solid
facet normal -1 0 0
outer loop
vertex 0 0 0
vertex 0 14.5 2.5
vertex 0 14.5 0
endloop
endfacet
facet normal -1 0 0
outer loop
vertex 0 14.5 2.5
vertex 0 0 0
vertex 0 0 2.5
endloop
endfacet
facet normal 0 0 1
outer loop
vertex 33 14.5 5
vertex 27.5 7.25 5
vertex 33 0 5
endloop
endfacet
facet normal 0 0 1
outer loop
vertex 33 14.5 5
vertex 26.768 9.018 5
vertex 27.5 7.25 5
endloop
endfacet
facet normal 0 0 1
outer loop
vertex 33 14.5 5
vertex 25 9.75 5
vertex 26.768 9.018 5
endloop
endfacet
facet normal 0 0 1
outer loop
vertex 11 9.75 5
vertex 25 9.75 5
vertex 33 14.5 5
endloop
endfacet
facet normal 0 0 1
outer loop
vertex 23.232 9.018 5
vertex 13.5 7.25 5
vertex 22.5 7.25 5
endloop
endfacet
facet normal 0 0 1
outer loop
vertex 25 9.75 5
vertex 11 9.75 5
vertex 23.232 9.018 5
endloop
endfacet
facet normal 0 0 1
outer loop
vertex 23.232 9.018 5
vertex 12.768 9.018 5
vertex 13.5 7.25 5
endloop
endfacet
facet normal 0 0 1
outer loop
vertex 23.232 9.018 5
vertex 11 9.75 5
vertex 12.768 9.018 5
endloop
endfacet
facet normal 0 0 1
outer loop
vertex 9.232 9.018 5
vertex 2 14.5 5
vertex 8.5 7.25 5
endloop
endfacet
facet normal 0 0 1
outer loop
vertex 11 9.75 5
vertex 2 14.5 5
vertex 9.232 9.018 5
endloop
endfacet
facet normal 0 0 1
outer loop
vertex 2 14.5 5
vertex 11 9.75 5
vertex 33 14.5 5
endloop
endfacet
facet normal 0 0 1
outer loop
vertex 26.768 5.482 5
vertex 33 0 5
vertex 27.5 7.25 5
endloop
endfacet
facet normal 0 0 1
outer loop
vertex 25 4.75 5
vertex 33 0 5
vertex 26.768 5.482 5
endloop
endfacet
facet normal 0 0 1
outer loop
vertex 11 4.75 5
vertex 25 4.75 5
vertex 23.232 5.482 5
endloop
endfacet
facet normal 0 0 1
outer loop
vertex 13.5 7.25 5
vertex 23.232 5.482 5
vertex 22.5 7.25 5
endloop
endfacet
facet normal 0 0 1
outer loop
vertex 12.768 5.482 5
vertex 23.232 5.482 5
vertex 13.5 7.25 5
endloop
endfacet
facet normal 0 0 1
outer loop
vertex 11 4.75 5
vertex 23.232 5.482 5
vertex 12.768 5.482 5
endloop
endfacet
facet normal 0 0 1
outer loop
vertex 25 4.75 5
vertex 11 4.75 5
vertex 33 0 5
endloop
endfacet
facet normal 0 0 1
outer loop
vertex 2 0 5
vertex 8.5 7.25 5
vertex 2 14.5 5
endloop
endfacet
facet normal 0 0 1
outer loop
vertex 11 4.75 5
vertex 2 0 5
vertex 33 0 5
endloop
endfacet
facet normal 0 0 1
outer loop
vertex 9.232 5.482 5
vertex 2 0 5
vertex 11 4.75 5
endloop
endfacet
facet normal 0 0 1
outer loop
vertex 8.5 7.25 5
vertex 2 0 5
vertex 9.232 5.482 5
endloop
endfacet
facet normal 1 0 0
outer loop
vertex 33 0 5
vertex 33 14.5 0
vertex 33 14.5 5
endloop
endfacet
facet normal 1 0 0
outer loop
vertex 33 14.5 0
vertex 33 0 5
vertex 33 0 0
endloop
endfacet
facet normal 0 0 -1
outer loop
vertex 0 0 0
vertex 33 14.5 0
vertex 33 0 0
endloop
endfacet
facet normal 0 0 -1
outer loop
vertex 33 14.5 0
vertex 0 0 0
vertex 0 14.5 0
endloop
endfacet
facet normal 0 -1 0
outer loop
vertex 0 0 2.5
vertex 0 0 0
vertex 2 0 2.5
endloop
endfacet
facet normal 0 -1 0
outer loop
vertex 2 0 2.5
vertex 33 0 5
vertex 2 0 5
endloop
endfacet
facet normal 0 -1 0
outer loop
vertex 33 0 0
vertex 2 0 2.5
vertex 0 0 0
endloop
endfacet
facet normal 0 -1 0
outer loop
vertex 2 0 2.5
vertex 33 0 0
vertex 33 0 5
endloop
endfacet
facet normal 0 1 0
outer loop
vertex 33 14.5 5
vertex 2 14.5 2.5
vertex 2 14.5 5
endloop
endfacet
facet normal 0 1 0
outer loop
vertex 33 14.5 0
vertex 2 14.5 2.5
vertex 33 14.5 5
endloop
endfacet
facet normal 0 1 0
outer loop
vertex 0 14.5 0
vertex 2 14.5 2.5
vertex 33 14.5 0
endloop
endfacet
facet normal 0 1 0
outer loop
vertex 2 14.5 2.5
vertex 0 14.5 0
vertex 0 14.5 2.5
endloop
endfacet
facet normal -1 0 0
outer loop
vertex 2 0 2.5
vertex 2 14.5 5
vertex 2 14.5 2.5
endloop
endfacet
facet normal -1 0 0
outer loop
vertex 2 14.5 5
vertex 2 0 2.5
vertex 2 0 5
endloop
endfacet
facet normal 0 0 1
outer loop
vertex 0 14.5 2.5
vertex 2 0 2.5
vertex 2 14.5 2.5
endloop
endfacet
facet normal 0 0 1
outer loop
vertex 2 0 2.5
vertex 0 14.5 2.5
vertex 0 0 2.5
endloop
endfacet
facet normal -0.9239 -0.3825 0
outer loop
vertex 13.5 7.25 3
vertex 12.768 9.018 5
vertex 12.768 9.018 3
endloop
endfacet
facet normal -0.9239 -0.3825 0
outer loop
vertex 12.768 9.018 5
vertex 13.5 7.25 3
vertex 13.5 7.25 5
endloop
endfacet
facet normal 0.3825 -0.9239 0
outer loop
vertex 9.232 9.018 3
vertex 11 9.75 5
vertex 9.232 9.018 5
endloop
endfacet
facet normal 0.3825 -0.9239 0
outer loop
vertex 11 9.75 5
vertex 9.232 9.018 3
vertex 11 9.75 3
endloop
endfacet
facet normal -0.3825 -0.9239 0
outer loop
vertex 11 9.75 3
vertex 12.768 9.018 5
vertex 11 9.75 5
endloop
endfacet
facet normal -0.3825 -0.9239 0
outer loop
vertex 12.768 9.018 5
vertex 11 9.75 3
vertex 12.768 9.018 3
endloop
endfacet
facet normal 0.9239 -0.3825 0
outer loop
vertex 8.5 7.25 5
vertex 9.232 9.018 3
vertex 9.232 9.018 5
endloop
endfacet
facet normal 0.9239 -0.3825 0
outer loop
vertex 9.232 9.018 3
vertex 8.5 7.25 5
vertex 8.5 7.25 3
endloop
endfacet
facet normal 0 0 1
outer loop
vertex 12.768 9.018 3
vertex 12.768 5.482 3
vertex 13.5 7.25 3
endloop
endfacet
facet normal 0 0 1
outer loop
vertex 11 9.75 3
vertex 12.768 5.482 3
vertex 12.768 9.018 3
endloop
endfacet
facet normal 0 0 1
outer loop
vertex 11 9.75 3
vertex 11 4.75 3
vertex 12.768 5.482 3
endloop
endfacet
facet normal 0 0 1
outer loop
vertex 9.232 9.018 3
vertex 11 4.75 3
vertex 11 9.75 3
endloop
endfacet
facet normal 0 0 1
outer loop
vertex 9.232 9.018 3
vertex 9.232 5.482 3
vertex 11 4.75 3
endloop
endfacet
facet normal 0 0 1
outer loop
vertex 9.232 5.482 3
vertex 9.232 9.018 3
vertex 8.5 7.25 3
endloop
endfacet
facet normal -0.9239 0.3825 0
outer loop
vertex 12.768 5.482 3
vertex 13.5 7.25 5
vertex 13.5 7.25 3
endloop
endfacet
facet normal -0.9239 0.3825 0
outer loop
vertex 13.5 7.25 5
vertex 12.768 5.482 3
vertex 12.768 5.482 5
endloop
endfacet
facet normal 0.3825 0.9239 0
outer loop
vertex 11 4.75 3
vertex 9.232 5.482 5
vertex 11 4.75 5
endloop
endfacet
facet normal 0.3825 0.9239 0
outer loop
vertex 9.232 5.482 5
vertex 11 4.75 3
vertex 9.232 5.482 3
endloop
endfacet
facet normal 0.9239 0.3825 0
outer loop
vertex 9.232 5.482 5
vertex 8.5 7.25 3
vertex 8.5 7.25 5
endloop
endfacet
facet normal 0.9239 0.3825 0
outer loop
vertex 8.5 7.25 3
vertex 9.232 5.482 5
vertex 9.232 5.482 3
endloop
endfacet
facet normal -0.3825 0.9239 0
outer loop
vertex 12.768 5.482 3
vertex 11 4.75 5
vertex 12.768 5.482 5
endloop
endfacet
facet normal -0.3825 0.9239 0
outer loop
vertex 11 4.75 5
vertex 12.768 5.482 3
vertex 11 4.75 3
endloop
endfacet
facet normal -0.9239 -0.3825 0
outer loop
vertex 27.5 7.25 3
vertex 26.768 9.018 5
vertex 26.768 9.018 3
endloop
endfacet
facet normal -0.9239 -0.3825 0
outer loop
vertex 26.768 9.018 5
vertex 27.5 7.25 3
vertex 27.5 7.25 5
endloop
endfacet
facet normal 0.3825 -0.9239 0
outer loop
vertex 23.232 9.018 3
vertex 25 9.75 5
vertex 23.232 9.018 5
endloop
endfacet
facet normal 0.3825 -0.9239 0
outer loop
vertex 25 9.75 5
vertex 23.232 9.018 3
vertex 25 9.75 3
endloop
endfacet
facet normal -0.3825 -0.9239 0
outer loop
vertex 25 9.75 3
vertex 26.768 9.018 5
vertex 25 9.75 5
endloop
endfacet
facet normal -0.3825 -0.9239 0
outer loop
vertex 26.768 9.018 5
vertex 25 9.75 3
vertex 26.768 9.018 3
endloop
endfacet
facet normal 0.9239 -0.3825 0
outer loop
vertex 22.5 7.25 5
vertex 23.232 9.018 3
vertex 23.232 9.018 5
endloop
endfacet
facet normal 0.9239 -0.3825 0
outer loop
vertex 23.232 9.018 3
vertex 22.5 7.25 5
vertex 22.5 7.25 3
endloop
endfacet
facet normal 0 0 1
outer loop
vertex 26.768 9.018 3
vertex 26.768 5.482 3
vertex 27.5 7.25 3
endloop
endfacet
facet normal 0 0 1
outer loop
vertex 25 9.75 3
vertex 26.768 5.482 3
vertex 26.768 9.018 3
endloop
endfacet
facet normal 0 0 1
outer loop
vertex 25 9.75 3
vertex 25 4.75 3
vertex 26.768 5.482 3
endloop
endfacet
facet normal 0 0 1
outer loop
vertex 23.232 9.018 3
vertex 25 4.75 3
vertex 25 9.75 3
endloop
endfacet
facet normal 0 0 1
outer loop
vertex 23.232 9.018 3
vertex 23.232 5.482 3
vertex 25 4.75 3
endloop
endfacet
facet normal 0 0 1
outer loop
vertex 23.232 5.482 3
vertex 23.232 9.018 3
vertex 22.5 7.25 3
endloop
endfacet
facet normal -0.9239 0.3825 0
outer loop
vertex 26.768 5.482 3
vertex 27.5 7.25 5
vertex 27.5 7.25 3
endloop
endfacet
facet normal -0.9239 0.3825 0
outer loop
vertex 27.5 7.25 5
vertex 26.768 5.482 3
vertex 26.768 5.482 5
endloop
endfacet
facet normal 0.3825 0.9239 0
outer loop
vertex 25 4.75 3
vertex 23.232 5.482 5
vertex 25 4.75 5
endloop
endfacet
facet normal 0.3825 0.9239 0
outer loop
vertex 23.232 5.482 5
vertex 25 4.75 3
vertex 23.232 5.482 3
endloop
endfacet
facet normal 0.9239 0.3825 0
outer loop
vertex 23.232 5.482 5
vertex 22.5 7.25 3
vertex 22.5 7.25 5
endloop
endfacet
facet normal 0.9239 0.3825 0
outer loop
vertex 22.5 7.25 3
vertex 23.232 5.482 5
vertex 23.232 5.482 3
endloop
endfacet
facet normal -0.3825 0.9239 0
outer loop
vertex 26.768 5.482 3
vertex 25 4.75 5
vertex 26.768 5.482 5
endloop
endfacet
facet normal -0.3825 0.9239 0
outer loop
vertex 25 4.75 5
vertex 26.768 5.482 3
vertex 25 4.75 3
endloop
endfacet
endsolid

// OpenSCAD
//
// Magnet holder for ELECOM EHC-G05PA-W-K
//
// 1st version

module holder_base()
{
    difference() {
        cube([33, 14.5, 5]);
        translate([-1,-1,2.5]) cube([3, 17, 3]);
    }
}

module holder()
{
    difference() {
        holder_base();
        
        // hole for magnet
        translate([11,14.5/2, 3]) cylinder(h=7,r=2.5);
        translate([25,14.5/2, 3]) cylinder(h=7,r=2.5);
    }
}





holder();
